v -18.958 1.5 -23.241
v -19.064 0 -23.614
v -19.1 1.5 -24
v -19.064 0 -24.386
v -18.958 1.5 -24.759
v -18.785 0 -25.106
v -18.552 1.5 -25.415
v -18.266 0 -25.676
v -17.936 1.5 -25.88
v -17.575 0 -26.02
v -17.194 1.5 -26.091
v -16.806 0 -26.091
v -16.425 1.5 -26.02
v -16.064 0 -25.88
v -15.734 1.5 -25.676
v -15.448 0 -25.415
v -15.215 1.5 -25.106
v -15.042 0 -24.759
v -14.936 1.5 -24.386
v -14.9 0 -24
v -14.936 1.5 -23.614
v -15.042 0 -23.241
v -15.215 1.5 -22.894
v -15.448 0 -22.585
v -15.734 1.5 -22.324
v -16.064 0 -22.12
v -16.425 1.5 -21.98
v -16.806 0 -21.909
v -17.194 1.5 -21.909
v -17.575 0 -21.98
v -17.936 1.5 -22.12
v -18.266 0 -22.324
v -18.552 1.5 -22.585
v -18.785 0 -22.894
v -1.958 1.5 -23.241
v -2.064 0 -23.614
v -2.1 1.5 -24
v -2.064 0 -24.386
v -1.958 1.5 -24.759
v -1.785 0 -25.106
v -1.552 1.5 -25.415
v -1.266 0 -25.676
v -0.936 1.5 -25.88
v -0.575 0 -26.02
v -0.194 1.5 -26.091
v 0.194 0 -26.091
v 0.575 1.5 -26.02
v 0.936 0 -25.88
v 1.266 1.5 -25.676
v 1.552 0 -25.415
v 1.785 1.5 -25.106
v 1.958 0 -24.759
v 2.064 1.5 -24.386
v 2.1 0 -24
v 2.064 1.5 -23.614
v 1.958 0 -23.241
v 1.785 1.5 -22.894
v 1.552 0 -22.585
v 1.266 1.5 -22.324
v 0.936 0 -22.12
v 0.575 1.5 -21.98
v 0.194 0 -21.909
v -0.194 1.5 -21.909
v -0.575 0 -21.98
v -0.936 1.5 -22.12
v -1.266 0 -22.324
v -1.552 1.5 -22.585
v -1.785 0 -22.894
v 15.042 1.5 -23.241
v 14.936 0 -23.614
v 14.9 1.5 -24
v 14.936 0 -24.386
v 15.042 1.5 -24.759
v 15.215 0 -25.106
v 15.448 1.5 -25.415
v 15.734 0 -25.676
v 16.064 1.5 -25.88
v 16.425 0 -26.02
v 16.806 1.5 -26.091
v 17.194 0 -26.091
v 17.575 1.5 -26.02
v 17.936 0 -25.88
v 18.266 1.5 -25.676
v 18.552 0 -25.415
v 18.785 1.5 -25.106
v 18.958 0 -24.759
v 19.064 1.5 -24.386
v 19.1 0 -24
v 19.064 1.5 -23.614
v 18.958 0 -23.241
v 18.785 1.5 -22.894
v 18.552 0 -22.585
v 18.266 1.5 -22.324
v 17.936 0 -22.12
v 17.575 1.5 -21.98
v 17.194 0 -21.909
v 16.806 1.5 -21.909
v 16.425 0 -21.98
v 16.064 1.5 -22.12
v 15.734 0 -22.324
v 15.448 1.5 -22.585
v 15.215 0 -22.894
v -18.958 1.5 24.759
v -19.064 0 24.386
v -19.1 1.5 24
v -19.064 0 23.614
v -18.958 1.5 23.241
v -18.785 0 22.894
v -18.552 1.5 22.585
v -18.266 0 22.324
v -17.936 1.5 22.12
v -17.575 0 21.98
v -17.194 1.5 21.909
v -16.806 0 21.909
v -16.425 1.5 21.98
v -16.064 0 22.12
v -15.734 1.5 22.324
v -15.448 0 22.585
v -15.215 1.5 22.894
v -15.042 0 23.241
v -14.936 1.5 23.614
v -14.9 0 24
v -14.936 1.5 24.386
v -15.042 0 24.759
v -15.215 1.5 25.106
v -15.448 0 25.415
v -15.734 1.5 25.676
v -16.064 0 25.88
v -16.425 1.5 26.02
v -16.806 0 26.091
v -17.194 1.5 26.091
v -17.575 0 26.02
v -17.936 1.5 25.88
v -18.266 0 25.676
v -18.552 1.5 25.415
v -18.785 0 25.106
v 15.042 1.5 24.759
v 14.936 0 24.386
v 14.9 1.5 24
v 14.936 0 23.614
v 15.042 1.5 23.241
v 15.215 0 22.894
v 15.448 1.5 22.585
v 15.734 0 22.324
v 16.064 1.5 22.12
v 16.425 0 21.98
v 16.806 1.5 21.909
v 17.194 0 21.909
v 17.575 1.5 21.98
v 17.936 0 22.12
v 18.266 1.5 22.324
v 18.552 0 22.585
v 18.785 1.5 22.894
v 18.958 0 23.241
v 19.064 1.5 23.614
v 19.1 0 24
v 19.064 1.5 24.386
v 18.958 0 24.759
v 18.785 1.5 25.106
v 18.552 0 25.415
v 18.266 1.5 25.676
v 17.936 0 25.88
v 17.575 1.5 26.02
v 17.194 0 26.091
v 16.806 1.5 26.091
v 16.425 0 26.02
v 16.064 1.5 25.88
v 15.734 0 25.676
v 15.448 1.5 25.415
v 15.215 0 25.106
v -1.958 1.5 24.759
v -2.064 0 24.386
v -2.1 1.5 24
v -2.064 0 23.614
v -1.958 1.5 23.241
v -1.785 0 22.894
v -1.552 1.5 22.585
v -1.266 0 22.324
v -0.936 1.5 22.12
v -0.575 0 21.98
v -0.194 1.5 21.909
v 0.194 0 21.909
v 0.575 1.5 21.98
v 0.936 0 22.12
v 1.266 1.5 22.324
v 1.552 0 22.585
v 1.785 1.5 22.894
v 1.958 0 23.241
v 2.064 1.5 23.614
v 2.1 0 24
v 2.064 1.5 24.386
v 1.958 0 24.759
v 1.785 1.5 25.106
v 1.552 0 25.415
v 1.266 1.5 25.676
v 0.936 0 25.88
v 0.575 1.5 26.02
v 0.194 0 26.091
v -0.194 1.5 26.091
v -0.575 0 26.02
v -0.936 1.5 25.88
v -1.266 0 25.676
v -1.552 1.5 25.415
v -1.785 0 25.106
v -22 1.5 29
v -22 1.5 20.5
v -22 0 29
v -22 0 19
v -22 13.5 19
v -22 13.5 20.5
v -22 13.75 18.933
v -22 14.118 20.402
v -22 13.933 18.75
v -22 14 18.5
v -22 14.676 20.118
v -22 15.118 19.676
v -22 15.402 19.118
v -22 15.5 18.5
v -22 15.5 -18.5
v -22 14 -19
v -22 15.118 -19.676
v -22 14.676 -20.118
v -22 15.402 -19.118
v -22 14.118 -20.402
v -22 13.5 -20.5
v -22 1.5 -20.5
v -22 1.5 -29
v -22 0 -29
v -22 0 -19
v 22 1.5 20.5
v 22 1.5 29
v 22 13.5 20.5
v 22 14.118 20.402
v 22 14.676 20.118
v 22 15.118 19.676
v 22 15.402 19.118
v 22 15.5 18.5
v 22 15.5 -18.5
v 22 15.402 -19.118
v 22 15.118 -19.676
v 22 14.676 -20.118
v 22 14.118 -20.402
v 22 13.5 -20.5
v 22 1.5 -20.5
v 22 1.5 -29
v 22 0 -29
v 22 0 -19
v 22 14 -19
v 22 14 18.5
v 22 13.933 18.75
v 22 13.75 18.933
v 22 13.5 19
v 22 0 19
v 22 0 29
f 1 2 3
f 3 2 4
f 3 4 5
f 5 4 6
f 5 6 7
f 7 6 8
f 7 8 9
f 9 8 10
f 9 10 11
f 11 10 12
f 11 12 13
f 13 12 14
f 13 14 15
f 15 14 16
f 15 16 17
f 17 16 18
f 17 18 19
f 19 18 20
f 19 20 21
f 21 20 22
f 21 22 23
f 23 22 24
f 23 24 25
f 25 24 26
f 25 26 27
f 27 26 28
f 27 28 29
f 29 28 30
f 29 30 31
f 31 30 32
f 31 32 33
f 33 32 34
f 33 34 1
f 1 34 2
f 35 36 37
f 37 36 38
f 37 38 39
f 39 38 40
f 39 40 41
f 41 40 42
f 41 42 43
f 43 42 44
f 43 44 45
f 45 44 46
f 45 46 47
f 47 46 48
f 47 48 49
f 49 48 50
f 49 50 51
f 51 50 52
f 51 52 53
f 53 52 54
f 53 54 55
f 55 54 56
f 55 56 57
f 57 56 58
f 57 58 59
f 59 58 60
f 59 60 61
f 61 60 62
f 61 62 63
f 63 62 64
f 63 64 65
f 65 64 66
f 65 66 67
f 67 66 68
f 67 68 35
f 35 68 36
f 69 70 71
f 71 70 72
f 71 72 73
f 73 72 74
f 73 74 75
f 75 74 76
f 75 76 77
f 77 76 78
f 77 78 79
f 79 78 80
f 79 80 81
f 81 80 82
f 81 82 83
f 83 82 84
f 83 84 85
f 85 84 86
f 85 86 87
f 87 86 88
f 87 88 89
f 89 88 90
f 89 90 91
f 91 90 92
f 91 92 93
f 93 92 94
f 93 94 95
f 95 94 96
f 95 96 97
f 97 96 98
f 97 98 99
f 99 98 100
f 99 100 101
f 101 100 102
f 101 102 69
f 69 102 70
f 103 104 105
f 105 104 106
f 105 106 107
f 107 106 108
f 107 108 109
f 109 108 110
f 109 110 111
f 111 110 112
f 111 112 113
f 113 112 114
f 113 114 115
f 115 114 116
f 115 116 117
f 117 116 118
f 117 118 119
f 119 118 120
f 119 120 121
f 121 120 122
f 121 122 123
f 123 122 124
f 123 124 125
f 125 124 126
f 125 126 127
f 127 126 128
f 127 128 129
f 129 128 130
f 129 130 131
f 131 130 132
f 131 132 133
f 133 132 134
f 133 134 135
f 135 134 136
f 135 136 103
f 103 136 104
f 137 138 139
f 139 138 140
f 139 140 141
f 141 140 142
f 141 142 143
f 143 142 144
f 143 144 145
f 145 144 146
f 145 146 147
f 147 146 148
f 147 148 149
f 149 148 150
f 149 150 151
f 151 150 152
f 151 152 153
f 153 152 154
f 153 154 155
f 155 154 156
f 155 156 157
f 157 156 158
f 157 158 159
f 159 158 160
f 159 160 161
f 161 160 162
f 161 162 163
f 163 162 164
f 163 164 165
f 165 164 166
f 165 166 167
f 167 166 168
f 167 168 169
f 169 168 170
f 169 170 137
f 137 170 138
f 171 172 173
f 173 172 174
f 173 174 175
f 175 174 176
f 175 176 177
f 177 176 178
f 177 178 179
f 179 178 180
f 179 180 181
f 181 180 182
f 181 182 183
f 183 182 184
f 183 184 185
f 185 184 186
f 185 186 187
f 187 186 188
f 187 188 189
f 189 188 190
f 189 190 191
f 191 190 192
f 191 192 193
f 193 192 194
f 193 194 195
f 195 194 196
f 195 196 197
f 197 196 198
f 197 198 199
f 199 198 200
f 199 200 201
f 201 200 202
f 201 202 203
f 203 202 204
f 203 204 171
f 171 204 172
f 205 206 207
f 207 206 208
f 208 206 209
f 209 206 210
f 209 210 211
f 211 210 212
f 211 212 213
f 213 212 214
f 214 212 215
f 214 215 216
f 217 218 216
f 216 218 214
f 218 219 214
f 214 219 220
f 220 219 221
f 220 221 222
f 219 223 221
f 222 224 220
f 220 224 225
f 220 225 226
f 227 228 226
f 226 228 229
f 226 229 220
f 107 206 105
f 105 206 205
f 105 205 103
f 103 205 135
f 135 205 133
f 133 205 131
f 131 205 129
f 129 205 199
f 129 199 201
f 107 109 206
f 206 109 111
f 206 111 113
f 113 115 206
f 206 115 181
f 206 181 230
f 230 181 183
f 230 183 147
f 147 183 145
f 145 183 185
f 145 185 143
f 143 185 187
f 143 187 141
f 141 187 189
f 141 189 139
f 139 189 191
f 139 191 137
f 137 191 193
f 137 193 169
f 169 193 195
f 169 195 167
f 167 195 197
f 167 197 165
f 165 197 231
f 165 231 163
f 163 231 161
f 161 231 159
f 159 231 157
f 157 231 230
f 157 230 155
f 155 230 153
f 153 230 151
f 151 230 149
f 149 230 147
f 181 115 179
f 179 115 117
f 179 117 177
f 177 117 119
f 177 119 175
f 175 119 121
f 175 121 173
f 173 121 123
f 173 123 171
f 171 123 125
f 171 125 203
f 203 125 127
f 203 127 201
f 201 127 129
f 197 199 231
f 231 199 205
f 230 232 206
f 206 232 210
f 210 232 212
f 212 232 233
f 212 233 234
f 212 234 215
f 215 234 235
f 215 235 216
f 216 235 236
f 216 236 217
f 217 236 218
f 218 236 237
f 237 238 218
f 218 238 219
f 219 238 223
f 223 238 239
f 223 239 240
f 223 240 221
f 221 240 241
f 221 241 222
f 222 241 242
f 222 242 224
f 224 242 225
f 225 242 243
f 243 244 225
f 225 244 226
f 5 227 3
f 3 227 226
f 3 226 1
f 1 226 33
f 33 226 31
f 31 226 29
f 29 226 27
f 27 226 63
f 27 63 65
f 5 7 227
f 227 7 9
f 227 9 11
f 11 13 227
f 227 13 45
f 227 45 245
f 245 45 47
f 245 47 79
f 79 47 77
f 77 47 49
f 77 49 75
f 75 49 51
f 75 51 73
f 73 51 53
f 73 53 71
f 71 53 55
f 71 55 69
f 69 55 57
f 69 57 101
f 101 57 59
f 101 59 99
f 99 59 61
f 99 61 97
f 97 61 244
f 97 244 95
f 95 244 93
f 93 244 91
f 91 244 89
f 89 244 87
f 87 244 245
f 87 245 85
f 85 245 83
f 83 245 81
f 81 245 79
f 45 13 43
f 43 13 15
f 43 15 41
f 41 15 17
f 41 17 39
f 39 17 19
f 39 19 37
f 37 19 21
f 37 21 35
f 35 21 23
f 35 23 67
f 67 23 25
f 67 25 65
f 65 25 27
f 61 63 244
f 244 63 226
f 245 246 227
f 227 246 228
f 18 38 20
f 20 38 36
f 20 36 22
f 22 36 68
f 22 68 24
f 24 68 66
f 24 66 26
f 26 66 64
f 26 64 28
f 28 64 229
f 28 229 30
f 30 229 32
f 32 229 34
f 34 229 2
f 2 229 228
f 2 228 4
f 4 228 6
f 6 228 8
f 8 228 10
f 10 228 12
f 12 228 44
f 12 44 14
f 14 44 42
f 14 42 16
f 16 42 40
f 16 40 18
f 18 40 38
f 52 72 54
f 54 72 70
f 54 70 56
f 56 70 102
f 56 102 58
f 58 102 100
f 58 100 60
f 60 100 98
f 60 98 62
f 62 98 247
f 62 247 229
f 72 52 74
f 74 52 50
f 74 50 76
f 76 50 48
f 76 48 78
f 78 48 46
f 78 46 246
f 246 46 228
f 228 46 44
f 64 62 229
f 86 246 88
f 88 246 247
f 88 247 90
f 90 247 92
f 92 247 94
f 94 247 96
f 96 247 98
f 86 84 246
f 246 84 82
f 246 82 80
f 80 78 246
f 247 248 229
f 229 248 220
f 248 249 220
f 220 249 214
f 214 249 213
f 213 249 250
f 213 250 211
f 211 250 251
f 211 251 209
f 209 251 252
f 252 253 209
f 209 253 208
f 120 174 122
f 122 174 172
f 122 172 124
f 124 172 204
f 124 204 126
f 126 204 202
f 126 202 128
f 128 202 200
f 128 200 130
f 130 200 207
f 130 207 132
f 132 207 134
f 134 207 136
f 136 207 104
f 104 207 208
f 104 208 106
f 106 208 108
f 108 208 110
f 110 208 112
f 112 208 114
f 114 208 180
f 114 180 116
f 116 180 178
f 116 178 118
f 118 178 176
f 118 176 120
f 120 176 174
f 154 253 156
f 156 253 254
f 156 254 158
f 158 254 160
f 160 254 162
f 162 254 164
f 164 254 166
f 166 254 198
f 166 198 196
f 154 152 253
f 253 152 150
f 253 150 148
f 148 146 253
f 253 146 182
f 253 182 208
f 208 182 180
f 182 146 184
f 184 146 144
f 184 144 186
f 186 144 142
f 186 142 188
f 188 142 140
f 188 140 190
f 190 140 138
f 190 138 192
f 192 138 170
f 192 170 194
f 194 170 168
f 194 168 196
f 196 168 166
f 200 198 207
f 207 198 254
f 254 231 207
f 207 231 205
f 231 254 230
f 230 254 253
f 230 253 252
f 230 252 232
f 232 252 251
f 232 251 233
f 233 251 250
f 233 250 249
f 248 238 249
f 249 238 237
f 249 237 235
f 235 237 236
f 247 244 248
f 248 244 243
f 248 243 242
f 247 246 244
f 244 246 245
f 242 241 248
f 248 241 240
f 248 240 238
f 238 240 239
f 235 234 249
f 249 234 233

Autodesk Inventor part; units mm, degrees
ref_plane "YZ Plane" through (0, 0, 0) normal (1, 0, 0) x (0, 1, 0)
sketch "Sketch2" plane through (0, 0, 0) normal (1, 0, 0) x (0, 1, 0)
  line L0 (0, 19) -> (0, 29)
  line L1 (0, 29) -> (1.5, 29)
  line L2 (1.5, 29) -> (1.5, 20.5)
  line L3 (0, 19) -> (13.5, 19)
  line L4 (14, 18.5) -> (14, 0)
  line L5 (1.5, 20.5) -> (13.5, 20.5)
  line L6 (15.5, 18.5) -> (15.5, 0)
  line L7 (-3.1828, 0) -> (19.0971, 0) projected
  line L8 (0, -40.6) -> (0, 40.6) projected
  line L9 (0, -19) -> (0, -29)
  line L10 (0, -29) -> (1.5, -29)
  line L11 (1.5, -29) -> (1.5, -20.5)
  line L12 (0, -19) -> (14, -19)
  line L13 (14, -19) -> (14, 0)
  line L14 (1.5, -20.5) -> (13.5, -20.5)
  line L15 (15.5, -18.5) -> (15.5, 0)
  arc A0 (15.5, 18.5) -> (13.5, 20.5) centre (13.5, 18.5) ccw
  arc A1 (13.5, -20.5) -> (15.5, -18.5) centre (13.5, -18.5) ccw
  arc A2 (14, 18.5) -> (13.5, 19) centre (13.5, 18.5) ccw
  point P0 (0, 0)
  point P1 (14, 19)
  point P2 (15.5, 20.5)
  point P3 (15.5, -20.5)
  point P4 (0, 26.5)
  point P5 (2.5, -19)
  point P6 (0, 19)
  dimension "d0" = 10
  dimension "d1" = 1.5
  dimension "d2" = 8.5
  dimension "d4" = 14
  dimension "d5" = 19
  dimension "d6" = 1.5
  dimension "d7" = 2
  dimension "d22" = 0.5
extrude "Extrusion1" add sketch "Sketch2" along normal mid plane 44 contours L0 L1 L2 L5 A0 L6 L7 L4 A2 L3 | L7 L15 A1 L14 L11 L10 L8 L12 L13
sketch "Sketch3" plane through (-22, 0, 19) normal (0, -1, 0) x (1, 0, 0)
  line L0 (0, 10) -> (44, 10) projected
  line L1 (22, -59.6) -> (22, 21.6) projected
  point P0 (22, -19)
  point P1 (22, 5)
  point P2 (39, 5)
  point P3 (5, 5)
  dimension "d10" = 5
  dimension "d12" = 17
  dimension "d14" = 5
  dimension "d23" = 17
  dimension "d24" = 5
hole "Hole1" at (0, 0, 24) at (17, 0, 24) at (-17, 0, 24) direction (0, 1, 0) diameter 4.2 end through all
mirror "Mirror1" about plane through (0, 0, 0) normal (0, 0, 1) of "Hole1"
properties part number "connector-houseing-top-cover"
